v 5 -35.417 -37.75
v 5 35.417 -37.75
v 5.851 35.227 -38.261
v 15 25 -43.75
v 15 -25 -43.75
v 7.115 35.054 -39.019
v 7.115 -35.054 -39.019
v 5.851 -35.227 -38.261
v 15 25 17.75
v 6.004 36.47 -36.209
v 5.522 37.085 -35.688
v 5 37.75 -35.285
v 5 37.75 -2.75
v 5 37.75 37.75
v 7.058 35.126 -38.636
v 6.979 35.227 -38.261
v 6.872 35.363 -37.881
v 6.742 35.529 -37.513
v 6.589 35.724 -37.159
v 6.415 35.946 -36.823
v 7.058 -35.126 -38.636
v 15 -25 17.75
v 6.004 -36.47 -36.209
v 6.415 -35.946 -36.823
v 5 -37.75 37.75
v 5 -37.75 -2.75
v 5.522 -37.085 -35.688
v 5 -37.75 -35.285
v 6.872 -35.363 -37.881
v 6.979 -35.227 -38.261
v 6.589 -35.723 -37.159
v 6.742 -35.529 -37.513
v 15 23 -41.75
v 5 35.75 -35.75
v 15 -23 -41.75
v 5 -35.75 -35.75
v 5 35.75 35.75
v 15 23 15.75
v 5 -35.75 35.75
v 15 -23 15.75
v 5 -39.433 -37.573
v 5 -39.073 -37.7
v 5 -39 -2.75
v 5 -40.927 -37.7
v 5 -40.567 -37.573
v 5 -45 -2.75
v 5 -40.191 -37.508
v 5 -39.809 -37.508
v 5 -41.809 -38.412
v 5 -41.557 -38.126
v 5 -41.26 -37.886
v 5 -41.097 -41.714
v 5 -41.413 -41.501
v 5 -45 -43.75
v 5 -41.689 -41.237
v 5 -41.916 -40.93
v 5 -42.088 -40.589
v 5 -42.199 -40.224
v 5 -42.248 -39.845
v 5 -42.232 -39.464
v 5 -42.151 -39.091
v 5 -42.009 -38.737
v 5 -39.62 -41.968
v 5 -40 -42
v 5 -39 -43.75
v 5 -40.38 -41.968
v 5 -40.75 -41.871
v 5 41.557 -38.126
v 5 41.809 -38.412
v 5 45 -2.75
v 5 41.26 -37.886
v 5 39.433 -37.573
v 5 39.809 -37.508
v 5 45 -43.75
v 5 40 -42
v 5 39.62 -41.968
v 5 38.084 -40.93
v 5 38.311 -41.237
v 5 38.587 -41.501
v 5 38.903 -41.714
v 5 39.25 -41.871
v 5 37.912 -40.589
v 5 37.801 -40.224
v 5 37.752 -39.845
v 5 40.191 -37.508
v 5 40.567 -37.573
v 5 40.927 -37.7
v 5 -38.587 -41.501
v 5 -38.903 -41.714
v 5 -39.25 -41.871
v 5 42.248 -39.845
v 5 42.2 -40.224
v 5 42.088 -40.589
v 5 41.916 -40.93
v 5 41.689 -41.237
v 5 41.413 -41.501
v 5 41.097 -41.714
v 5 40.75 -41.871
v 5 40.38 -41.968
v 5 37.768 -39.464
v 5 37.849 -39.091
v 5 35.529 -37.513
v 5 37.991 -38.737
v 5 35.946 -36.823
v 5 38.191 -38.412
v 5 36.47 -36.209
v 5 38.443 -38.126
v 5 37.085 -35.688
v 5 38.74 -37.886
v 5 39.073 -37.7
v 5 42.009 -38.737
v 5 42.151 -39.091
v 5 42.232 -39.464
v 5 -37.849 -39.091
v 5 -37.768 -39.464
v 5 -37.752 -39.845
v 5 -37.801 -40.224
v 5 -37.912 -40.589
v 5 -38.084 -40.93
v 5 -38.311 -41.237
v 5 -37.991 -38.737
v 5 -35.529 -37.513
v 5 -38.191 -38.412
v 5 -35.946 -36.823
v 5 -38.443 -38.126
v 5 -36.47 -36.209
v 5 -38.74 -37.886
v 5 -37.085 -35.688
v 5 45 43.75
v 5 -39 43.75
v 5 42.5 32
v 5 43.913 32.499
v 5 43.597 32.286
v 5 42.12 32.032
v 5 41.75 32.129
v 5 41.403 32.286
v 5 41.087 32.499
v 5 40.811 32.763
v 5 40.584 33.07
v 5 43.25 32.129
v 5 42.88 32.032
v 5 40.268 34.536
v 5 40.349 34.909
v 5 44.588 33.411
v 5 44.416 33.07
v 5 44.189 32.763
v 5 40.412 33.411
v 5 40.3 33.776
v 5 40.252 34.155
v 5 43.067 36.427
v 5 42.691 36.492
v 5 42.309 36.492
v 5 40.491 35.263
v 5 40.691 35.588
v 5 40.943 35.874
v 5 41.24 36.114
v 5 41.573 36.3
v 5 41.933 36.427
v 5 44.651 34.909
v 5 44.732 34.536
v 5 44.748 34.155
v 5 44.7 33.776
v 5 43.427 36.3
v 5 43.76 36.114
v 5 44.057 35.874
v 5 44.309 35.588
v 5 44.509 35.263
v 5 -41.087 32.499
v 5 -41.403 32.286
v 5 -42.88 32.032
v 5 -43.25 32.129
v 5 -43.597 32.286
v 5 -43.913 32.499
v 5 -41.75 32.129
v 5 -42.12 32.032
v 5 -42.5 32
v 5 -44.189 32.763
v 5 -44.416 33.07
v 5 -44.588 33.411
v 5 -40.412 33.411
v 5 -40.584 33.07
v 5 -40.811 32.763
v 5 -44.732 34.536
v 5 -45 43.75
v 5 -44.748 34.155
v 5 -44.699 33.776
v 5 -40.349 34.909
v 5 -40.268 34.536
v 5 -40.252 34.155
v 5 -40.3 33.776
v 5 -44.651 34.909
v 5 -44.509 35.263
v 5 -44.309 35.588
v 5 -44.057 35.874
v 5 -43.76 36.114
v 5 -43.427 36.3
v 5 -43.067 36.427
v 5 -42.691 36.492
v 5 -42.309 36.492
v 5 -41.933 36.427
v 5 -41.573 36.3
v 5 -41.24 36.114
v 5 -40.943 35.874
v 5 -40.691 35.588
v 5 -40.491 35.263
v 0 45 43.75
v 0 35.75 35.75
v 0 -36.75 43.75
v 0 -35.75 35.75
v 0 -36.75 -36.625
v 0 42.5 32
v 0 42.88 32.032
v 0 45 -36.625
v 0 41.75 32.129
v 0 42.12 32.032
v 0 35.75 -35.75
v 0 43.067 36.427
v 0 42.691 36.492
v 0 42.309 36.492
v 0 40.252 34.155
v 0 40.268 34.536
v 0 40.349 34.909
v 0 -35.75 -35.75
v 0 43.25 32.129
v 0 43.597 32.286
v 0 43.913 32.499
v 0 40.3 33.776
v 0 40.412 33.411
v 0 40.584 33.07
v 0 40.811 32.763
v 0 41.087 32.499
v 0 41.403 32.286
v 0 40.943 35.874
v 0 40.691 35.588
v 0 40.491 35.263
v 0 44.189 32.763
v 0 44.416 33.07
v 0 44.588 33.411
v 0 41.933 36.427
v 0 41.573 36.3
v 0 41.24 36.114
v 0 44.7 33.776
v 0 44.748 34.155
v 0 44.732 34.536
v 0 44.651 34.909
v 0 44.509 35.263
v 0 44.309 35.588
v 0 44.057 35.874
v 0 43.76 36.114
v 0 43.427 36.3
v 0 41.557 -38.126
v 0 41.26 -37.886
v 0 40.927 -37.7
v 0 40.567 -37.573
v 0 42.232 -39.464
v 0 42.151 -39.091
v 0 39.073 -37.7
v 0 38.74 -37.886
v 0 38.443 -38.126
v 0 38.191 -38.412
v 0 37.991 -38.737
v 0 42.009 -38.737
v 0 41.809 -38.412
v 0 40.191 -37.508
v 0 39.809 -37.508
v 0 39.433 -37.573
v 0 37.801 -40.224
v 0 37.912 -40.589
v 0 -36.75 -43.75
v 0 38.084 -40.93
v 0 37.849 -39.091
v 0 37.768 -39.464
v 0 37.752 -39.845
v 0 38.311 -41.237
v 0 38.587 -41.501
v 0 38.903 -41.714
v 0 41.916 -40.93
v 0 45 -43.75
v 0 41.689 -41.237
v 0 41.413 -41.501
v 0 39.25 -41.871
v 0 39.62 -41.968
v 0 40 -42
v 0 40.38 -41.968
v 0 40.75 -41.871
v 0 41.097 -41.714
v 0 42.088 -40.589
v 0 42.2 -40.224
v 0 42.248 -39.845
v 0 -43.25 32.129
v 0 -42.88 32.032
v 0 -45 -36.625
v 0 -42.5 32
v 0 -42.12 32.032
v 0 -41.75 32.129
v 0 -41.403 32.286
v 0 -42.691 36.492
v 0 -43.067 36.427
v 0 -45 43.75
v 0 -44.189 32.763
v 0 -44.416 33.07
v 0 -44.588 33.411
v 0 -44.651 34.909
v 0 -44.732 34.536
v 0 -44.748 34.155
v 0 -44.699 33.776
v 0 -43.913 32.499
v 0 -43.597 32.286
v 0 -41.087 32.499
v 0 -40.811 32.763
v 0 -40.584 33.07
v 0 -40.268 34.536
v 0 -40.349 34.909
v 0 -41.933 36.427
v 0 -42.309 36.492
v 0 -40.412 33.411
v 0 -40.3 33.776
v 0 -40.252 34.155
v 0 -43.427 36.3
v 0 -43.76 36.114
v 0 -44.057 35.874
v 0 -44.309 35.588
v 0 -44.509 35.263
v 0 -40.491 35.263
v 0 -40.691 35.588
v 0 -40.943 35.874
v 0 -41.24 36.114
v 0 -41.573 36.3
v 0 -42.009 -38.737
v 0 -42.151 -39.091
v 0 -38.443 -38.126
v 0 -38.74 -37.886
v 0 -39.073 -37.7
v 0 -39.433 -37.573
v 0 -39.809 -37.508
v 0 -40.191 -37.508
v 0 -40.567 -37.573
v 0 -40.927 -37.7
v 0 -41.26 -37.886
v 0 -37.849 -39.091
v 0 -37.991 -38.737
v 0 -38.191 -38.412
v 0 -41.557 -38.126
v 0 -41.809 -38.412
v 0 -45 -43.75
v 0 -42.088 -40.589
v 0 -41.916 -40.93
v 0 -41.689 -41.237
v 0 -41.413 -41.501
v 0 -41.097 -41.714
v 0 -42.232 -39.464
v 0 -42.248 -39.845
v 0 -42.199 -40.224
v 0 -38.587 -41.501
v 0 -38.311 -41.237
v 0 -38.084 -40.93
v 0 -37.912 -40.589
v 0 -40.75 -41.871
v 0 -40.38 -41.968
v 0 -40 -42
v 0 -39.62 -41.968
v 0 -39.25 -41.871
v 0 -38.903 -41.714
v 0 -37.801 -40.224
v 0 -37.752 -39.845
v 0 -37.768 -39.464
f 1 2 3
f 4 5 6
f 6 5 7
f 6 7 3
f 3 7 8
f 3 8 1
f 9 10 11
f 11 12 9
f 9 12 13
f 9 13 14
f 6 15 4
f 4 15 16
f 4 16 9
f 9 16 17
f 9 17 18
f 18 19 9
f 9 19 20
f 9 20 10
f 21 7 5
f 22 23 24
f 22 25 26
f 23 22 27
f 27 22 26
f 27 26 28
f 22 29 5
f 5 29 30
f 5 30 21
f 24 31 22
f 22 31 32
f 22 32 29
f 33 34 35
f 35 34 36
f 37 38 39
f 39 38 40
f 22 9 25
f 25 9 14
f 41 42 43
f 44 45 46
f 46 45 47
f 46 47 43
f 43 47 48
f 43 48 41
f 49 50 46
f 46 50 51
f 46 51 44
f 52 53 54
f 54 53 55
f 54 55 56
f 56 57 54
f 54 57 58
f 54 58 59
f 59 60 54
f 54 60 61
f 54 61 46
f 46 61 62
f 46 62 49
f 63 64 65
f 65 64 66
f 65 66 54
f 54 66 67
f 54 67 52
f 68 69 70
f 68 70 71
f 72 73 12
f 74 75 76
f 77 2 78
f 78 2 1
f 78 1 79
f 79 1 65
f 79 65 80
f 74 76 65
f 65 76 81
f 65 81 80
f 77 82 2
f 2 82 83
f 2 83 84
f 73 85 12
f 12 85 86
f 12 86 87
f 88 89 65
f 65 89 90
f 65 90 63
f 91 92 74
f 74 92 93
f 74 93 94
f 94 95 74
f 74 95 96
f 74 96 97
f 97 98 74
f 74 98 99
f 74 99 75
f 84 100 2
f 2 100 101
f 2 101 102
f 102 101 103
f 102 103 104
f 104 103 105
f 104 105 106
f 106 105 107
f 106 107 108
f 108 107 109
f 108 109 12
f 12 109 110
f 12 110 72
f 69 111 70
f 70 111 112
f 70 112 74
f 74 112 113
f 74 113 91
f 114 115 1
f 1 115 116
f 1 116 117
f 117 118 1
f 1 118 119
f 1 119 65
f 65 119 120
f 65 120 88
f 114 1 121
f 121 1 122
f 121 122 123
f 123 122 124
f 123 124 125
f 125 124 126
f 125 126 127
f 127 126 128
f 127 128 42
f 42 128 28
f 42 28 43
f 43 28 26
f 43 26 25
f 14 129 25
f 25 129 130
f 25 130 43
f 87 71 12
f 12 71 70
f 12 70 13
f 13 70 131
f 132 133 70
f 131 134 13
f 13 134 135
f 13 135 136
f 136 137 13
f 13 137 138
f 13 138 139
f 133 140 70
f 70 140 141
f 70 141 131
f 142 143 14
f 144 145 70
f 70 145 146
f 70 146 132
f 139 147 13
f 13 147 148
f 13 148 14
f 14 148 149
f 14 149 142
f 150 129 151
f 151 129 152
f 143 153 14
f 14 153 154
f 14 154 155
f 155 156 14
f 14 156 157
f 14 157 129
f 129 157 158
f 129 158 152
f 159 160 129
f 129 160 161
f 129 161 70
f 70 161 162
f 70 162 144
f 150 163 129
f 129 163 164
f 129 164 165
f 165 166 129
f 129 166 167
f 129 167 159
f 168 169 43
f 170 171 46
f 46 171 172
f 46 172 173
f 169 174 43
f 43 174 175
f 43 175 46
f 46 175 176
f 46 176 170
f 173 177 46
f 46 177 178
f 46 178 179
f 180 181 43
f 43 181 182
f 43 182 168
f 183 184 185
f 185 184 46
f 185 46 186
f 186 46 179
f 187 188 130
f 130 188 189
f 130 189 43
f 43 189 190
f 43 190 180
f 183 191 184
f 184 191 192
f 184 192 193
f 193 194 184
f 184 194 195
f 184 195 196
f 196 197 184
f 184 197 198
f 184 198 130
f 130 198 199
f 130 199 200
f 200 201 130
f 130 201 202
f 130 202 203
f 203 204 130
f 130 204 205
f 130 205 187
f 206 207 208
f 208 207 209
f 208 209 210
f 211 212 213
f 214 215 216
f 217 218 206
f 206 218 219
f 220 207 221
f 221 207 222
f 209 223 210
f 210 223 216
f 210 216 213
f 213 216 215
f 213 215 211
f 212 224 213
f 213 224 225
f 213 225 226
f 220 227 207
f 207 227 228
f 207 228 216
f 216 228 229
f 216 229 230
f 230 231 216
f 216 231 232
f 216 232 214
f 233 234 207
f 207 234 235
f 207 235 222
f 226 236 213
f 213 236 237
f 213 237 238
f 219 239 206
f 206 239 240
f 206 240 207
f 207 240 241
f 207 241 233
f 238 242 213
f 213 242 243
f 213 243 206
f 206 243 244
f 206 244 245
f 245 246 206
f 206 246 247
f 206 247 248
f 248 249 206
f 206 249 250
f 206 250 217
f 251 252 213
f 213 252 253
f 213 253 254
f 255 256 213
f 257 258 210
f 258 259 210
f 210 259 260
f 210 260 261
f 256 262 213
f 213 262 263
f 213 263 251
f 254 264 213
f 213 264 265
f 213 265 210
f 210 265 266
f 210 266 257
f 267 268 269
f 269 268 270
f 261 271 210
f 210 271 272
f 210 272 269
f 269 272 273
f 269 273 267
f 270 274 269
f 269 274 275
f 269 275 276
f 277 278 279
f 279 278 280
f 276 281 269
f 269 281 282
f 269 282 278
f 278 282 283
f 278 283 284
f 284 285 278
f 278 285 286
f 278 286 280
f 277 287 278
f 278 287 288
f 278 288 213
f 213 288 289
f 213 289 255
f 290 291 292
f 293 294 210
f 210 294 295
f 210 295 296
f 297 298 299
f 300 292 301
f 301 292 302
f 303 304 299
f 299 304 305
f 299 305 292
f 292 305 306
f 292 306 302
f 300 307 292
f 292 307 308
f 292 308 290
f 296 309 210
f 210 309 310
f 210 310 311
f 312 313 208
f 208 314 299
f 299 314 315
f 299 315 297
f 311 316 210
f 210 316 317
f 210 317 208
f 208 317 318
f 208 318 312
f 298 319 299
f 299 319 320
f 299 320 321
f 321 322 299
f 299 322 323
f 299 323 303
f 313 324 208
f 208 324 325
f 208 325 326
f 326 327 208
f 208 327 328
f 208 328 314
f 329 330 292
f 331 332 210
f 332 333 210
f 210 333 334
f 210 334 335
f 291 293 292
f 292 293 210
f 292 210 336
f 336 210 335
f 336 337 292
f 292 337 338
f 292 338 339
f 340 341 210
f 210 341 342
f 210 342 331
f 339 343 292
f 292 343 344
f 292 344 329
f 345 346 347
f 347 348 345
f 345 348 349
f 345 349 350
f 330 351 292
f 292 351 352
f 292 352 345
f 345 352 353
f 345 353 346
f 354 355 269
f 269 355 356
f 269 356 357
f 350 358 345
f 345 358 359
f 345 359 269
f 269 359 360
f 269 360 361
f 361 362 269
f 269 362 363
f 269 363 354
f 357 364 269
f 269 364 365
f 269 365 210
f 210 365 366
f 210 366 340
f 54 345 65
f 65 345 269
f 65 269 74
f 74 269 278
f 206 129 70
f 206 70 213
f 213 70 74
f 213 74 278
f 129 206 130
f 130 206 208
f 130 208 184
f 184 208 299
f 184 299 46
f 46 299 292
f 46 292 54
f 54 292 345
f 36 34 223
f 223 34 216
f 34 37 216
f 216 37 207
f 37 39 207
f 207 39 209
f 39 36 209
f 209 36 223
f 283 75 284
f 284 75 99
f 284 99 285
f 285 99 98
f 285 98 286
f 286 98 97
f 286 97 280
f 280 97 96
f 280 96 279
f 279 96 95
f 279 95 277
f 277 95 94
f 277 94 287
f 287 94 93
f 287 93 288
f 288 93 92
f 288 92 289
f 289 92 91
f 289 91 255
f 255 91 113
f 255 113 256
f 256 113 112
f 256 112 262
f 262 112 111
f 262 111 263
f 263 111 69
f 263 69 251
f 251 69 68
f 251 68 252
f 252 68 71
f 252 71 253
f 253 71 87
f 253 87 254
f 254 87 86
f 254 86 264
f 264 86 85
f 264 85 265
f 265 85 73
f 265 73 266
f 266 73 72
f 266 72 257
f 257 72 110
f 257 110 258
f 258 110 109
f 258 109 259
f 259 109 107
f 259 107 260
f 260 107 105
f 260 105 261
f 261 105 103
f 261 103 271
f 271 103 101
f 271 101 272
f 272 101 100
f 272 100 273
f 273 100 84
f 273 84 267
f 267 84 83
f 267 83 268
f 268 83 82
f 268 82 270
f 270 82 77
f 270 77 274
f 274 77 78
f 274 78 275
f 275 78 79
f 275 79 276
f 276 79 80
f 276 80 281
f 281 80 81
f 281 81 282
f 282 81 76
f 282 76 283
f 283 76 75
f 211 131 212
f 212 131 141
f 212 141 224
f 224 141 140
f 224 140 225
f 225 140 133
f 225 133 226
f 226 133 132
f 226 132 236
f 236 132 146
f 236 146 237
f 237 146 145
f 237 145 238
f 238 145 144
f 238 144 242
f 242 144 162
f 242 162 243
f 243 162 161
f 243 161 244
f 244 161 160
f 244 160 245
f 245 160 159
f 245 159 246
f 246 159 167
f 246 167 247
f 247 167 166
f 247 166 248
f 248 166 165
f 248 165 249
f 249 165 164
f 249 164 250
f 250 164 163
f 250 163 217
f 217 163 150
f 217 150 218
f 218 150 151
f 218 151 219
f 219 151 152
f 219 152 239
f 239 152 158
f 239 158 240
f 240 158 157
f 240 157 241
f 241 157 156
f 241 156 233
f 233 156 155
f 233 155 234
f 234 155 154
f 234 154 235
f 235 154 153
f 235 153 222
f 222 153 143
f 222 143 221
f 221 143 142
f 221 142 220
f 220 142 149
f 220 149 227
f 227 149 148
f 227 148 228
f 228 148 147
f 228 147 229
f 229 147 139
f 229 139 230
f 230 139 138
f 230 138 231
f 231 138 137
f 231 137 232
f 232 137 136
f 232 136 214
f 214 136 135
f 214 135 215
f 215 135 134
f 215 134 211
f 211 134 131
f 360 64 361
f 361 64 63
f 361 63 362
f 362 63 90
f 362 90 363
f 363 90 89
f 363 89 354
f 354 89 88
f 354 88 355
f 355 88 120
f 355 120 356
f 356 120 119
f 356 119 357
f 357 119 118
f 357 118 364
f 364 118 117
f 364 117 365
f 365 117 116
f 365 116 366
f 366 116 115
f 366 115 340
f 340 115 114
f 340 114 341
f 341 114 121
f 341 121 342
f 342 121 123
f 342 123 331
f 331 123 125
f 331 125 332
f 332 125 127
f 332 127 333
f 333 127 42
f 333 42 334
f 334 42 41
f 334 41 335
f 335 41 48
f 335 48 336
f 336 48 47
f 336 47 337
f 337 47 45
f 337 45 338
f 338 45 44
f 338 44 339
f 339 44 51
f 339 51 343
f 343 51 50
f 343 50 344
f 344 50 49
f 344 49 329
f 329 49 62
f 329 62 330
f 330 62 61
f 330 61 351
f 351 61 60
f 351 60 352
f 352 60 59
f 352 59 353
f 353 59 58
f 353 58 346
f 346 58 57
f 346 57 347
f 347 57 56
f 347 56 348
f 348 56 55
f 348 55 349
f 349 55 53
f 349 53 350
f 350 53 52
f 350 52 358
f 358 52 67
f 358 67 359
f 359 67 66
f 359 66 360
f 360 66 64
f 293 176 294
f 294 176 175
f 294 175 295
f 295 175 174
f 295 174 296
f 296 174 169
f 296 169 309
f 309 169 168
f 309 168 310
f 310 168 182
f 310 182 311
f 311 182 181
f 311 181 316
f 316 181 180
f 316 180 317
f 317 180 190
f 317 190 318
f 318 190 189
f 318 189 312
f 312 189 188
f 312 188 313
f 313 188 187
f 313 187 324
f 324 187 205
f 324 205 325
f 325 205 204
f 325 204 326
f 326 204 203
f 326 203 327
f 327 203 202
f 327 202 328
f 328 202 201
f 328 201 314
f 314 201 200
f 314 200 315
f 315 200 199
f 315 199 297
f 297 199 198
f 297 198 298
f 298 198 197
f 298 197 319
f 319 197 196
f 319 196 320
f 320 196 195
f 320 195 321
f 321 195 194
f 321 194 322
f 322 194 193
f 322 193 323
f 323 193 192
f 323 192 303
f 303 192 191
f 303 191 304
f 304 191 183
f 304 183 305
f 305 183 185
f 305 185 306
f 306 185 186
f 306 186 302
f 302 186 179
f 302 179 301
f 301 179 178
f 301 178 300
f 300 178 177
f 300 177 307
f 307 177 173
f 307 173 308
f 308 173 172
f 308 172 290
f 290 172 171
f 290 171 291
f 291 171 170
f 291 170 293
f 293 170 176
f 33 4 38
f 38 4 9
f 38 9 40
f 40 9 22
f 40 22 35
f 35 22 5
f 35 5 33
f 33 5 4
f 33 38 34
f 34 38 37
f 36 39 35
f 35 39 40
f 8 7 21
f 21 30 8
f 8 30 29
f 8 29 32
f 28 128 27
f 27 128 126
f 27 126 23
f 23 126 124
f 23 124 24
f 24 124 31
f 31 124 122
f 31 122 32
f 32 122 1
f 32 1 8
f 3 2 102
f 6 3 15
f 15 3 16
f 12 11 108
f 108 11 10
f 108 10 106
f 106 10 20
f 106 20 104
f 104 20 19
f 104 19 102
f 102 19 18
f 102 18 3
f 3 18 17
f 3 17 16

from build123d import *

# Parameters (mm, degrees)
SKETCH1_W            = 87.5
SKETCH1_H            = 90
SKETCH1_W_2          = 71.5
SKETCH1_H_2          = 71.5
BOSS_EXTRUDE1_DEPTH  = 5
M4_CLEARANCE_HOLE1_D = 4.5
BOSS_EXTRUDE2_DEPTH  = 90
BOSS_EXTRUDE3_DEPTH  = 87.5
CUT_EXTRUDE1_START   = -81.5
CUT_EXTRUDE1_DEPTH   = 81.5
CUT_EXTRUDE2_START   = -82.75
CUT_EXTRUDE2_DEPTH   = 75.5
SKETCH8_R            = 5
CUT_EXTRUDE3_DEPTH   = 10


with BuildPart() as part:
    # Sketch1 → Boss-Extrude1 (new body)
    with BuildSketch(Plane(origin=(0, 0, 0), x_dir=(0, 0, -1), z_dir=(1, 0, 0))):
        Rectangle(SKETCH1_W, SKETCH1_H)
        Rectangle(SKETCH1_W_2, SKETCH1_H_2, mode=Mode.SUBTRACT)
    extrude(amount=BOSS_EXTRUDE1_DEPTH)

    # M4 Clearance Hole1 (through all)
    with Locations(Plane(origin=(5, 0, 0), x_dir=(0, 0, -1), z_dir=(1, 0, 0))):
        with Locations((-34.25, 42.5), (39.75, 40)):
            m4_clearance_hole1 = Hole(M4_CLEARANCE_HOLE1_D / 2)

    # Mirror1: M4 Clearance Hole1 across plane
    add(m4_clearance_hole1.mirror(Plane.ZX), mode=Mode.SUBTRACT)

    # Sketch4 → Boss-Extrude2 (add)
    with BuildSketch(Plane(origin=(0, 45, 0), x_dir=(1, 0, 0), z_dir=(0, 1, 0))):
        Polygon((5, 35.75), (15, 41.75), (15, 43.75), (5, 37.75), align=None)
        Polygon((5, -35.75), (15, -15.75), (15, -17.75), (5, -37.75), align=None)
    extrude(amount=-BOSS_EXTRUDE2_DEPTH)

    # Sketch5 → Boss-Extrude3 (add)
    with BuildSketch(Plane(origin=(0, 0, -43.75), x_dir=(-1, 0, 0), z_dir=(0, 0, -1))):
        Polygon((-5, 35.75), (-15, 23), (-15, 25), (-5, 37.75), align=None)
        Polygon((-5, -37.75), (-15, -25), (-15, -23), (-5, -35.75), align=None)
    extrude(amount=-BOSS_EXTRUDE3_DEPTH)

    # Sketch6 → Cut-Extrude1 (cut)
    with BuildSketch(Plane(origin=(0, 0, -43.75), x_dir=(-1, 0, 0), z_dir=(0, 0, -1)).offset(CUT_EXTRUDE1_START)):
        Polygon((-5, 45), (-15, 45), (-15, 25), (-5, 37.75), align=None)
        Polygon((-15, -25), (-15, -45), (-5, -45), (-5, -37.75), align=None)
    extrude(amount=CUT_EXTRUDE1_DEPTH, mode=Mode.SUBTRACT)

    # Sketch7 → Cut-Extrude2 (cut)
    with BuildSketch(Plane(origin=(0, 45, 0), x_dir=(1, 0, 0), z_dir=(0, 1, 0)).offset(CUT_EXTRUDE2_START)):
        Polygon((5, -43.75), (15, -43.75), (15, -17.75), (5, -37.75), align=None)
        Polygon((5, 43.75), (15, 43.75), (5, 37.75), align=None)
    extrude(amount=CUT_EXTRUDE2_DEPTH, mode=Mode.SUBTRACT)

    # Sketch8 → Cut-Extrude3 (cut)
    with BuildSketch(Plane(origin=(5, 0, 0), x_dir=(0, 0, -1), z_dir=(1, 0, 0))):
        with Locations((39.75, 40)):
            Circle(SKETCH8_R)
        with Locations((39.75, -40)):
            Circle(SKETCH8_R)
    extrude(amount=CUT_EXTRUDE3_DEPTH, mode=Mode.SUBTRACT)


solid = part.part
